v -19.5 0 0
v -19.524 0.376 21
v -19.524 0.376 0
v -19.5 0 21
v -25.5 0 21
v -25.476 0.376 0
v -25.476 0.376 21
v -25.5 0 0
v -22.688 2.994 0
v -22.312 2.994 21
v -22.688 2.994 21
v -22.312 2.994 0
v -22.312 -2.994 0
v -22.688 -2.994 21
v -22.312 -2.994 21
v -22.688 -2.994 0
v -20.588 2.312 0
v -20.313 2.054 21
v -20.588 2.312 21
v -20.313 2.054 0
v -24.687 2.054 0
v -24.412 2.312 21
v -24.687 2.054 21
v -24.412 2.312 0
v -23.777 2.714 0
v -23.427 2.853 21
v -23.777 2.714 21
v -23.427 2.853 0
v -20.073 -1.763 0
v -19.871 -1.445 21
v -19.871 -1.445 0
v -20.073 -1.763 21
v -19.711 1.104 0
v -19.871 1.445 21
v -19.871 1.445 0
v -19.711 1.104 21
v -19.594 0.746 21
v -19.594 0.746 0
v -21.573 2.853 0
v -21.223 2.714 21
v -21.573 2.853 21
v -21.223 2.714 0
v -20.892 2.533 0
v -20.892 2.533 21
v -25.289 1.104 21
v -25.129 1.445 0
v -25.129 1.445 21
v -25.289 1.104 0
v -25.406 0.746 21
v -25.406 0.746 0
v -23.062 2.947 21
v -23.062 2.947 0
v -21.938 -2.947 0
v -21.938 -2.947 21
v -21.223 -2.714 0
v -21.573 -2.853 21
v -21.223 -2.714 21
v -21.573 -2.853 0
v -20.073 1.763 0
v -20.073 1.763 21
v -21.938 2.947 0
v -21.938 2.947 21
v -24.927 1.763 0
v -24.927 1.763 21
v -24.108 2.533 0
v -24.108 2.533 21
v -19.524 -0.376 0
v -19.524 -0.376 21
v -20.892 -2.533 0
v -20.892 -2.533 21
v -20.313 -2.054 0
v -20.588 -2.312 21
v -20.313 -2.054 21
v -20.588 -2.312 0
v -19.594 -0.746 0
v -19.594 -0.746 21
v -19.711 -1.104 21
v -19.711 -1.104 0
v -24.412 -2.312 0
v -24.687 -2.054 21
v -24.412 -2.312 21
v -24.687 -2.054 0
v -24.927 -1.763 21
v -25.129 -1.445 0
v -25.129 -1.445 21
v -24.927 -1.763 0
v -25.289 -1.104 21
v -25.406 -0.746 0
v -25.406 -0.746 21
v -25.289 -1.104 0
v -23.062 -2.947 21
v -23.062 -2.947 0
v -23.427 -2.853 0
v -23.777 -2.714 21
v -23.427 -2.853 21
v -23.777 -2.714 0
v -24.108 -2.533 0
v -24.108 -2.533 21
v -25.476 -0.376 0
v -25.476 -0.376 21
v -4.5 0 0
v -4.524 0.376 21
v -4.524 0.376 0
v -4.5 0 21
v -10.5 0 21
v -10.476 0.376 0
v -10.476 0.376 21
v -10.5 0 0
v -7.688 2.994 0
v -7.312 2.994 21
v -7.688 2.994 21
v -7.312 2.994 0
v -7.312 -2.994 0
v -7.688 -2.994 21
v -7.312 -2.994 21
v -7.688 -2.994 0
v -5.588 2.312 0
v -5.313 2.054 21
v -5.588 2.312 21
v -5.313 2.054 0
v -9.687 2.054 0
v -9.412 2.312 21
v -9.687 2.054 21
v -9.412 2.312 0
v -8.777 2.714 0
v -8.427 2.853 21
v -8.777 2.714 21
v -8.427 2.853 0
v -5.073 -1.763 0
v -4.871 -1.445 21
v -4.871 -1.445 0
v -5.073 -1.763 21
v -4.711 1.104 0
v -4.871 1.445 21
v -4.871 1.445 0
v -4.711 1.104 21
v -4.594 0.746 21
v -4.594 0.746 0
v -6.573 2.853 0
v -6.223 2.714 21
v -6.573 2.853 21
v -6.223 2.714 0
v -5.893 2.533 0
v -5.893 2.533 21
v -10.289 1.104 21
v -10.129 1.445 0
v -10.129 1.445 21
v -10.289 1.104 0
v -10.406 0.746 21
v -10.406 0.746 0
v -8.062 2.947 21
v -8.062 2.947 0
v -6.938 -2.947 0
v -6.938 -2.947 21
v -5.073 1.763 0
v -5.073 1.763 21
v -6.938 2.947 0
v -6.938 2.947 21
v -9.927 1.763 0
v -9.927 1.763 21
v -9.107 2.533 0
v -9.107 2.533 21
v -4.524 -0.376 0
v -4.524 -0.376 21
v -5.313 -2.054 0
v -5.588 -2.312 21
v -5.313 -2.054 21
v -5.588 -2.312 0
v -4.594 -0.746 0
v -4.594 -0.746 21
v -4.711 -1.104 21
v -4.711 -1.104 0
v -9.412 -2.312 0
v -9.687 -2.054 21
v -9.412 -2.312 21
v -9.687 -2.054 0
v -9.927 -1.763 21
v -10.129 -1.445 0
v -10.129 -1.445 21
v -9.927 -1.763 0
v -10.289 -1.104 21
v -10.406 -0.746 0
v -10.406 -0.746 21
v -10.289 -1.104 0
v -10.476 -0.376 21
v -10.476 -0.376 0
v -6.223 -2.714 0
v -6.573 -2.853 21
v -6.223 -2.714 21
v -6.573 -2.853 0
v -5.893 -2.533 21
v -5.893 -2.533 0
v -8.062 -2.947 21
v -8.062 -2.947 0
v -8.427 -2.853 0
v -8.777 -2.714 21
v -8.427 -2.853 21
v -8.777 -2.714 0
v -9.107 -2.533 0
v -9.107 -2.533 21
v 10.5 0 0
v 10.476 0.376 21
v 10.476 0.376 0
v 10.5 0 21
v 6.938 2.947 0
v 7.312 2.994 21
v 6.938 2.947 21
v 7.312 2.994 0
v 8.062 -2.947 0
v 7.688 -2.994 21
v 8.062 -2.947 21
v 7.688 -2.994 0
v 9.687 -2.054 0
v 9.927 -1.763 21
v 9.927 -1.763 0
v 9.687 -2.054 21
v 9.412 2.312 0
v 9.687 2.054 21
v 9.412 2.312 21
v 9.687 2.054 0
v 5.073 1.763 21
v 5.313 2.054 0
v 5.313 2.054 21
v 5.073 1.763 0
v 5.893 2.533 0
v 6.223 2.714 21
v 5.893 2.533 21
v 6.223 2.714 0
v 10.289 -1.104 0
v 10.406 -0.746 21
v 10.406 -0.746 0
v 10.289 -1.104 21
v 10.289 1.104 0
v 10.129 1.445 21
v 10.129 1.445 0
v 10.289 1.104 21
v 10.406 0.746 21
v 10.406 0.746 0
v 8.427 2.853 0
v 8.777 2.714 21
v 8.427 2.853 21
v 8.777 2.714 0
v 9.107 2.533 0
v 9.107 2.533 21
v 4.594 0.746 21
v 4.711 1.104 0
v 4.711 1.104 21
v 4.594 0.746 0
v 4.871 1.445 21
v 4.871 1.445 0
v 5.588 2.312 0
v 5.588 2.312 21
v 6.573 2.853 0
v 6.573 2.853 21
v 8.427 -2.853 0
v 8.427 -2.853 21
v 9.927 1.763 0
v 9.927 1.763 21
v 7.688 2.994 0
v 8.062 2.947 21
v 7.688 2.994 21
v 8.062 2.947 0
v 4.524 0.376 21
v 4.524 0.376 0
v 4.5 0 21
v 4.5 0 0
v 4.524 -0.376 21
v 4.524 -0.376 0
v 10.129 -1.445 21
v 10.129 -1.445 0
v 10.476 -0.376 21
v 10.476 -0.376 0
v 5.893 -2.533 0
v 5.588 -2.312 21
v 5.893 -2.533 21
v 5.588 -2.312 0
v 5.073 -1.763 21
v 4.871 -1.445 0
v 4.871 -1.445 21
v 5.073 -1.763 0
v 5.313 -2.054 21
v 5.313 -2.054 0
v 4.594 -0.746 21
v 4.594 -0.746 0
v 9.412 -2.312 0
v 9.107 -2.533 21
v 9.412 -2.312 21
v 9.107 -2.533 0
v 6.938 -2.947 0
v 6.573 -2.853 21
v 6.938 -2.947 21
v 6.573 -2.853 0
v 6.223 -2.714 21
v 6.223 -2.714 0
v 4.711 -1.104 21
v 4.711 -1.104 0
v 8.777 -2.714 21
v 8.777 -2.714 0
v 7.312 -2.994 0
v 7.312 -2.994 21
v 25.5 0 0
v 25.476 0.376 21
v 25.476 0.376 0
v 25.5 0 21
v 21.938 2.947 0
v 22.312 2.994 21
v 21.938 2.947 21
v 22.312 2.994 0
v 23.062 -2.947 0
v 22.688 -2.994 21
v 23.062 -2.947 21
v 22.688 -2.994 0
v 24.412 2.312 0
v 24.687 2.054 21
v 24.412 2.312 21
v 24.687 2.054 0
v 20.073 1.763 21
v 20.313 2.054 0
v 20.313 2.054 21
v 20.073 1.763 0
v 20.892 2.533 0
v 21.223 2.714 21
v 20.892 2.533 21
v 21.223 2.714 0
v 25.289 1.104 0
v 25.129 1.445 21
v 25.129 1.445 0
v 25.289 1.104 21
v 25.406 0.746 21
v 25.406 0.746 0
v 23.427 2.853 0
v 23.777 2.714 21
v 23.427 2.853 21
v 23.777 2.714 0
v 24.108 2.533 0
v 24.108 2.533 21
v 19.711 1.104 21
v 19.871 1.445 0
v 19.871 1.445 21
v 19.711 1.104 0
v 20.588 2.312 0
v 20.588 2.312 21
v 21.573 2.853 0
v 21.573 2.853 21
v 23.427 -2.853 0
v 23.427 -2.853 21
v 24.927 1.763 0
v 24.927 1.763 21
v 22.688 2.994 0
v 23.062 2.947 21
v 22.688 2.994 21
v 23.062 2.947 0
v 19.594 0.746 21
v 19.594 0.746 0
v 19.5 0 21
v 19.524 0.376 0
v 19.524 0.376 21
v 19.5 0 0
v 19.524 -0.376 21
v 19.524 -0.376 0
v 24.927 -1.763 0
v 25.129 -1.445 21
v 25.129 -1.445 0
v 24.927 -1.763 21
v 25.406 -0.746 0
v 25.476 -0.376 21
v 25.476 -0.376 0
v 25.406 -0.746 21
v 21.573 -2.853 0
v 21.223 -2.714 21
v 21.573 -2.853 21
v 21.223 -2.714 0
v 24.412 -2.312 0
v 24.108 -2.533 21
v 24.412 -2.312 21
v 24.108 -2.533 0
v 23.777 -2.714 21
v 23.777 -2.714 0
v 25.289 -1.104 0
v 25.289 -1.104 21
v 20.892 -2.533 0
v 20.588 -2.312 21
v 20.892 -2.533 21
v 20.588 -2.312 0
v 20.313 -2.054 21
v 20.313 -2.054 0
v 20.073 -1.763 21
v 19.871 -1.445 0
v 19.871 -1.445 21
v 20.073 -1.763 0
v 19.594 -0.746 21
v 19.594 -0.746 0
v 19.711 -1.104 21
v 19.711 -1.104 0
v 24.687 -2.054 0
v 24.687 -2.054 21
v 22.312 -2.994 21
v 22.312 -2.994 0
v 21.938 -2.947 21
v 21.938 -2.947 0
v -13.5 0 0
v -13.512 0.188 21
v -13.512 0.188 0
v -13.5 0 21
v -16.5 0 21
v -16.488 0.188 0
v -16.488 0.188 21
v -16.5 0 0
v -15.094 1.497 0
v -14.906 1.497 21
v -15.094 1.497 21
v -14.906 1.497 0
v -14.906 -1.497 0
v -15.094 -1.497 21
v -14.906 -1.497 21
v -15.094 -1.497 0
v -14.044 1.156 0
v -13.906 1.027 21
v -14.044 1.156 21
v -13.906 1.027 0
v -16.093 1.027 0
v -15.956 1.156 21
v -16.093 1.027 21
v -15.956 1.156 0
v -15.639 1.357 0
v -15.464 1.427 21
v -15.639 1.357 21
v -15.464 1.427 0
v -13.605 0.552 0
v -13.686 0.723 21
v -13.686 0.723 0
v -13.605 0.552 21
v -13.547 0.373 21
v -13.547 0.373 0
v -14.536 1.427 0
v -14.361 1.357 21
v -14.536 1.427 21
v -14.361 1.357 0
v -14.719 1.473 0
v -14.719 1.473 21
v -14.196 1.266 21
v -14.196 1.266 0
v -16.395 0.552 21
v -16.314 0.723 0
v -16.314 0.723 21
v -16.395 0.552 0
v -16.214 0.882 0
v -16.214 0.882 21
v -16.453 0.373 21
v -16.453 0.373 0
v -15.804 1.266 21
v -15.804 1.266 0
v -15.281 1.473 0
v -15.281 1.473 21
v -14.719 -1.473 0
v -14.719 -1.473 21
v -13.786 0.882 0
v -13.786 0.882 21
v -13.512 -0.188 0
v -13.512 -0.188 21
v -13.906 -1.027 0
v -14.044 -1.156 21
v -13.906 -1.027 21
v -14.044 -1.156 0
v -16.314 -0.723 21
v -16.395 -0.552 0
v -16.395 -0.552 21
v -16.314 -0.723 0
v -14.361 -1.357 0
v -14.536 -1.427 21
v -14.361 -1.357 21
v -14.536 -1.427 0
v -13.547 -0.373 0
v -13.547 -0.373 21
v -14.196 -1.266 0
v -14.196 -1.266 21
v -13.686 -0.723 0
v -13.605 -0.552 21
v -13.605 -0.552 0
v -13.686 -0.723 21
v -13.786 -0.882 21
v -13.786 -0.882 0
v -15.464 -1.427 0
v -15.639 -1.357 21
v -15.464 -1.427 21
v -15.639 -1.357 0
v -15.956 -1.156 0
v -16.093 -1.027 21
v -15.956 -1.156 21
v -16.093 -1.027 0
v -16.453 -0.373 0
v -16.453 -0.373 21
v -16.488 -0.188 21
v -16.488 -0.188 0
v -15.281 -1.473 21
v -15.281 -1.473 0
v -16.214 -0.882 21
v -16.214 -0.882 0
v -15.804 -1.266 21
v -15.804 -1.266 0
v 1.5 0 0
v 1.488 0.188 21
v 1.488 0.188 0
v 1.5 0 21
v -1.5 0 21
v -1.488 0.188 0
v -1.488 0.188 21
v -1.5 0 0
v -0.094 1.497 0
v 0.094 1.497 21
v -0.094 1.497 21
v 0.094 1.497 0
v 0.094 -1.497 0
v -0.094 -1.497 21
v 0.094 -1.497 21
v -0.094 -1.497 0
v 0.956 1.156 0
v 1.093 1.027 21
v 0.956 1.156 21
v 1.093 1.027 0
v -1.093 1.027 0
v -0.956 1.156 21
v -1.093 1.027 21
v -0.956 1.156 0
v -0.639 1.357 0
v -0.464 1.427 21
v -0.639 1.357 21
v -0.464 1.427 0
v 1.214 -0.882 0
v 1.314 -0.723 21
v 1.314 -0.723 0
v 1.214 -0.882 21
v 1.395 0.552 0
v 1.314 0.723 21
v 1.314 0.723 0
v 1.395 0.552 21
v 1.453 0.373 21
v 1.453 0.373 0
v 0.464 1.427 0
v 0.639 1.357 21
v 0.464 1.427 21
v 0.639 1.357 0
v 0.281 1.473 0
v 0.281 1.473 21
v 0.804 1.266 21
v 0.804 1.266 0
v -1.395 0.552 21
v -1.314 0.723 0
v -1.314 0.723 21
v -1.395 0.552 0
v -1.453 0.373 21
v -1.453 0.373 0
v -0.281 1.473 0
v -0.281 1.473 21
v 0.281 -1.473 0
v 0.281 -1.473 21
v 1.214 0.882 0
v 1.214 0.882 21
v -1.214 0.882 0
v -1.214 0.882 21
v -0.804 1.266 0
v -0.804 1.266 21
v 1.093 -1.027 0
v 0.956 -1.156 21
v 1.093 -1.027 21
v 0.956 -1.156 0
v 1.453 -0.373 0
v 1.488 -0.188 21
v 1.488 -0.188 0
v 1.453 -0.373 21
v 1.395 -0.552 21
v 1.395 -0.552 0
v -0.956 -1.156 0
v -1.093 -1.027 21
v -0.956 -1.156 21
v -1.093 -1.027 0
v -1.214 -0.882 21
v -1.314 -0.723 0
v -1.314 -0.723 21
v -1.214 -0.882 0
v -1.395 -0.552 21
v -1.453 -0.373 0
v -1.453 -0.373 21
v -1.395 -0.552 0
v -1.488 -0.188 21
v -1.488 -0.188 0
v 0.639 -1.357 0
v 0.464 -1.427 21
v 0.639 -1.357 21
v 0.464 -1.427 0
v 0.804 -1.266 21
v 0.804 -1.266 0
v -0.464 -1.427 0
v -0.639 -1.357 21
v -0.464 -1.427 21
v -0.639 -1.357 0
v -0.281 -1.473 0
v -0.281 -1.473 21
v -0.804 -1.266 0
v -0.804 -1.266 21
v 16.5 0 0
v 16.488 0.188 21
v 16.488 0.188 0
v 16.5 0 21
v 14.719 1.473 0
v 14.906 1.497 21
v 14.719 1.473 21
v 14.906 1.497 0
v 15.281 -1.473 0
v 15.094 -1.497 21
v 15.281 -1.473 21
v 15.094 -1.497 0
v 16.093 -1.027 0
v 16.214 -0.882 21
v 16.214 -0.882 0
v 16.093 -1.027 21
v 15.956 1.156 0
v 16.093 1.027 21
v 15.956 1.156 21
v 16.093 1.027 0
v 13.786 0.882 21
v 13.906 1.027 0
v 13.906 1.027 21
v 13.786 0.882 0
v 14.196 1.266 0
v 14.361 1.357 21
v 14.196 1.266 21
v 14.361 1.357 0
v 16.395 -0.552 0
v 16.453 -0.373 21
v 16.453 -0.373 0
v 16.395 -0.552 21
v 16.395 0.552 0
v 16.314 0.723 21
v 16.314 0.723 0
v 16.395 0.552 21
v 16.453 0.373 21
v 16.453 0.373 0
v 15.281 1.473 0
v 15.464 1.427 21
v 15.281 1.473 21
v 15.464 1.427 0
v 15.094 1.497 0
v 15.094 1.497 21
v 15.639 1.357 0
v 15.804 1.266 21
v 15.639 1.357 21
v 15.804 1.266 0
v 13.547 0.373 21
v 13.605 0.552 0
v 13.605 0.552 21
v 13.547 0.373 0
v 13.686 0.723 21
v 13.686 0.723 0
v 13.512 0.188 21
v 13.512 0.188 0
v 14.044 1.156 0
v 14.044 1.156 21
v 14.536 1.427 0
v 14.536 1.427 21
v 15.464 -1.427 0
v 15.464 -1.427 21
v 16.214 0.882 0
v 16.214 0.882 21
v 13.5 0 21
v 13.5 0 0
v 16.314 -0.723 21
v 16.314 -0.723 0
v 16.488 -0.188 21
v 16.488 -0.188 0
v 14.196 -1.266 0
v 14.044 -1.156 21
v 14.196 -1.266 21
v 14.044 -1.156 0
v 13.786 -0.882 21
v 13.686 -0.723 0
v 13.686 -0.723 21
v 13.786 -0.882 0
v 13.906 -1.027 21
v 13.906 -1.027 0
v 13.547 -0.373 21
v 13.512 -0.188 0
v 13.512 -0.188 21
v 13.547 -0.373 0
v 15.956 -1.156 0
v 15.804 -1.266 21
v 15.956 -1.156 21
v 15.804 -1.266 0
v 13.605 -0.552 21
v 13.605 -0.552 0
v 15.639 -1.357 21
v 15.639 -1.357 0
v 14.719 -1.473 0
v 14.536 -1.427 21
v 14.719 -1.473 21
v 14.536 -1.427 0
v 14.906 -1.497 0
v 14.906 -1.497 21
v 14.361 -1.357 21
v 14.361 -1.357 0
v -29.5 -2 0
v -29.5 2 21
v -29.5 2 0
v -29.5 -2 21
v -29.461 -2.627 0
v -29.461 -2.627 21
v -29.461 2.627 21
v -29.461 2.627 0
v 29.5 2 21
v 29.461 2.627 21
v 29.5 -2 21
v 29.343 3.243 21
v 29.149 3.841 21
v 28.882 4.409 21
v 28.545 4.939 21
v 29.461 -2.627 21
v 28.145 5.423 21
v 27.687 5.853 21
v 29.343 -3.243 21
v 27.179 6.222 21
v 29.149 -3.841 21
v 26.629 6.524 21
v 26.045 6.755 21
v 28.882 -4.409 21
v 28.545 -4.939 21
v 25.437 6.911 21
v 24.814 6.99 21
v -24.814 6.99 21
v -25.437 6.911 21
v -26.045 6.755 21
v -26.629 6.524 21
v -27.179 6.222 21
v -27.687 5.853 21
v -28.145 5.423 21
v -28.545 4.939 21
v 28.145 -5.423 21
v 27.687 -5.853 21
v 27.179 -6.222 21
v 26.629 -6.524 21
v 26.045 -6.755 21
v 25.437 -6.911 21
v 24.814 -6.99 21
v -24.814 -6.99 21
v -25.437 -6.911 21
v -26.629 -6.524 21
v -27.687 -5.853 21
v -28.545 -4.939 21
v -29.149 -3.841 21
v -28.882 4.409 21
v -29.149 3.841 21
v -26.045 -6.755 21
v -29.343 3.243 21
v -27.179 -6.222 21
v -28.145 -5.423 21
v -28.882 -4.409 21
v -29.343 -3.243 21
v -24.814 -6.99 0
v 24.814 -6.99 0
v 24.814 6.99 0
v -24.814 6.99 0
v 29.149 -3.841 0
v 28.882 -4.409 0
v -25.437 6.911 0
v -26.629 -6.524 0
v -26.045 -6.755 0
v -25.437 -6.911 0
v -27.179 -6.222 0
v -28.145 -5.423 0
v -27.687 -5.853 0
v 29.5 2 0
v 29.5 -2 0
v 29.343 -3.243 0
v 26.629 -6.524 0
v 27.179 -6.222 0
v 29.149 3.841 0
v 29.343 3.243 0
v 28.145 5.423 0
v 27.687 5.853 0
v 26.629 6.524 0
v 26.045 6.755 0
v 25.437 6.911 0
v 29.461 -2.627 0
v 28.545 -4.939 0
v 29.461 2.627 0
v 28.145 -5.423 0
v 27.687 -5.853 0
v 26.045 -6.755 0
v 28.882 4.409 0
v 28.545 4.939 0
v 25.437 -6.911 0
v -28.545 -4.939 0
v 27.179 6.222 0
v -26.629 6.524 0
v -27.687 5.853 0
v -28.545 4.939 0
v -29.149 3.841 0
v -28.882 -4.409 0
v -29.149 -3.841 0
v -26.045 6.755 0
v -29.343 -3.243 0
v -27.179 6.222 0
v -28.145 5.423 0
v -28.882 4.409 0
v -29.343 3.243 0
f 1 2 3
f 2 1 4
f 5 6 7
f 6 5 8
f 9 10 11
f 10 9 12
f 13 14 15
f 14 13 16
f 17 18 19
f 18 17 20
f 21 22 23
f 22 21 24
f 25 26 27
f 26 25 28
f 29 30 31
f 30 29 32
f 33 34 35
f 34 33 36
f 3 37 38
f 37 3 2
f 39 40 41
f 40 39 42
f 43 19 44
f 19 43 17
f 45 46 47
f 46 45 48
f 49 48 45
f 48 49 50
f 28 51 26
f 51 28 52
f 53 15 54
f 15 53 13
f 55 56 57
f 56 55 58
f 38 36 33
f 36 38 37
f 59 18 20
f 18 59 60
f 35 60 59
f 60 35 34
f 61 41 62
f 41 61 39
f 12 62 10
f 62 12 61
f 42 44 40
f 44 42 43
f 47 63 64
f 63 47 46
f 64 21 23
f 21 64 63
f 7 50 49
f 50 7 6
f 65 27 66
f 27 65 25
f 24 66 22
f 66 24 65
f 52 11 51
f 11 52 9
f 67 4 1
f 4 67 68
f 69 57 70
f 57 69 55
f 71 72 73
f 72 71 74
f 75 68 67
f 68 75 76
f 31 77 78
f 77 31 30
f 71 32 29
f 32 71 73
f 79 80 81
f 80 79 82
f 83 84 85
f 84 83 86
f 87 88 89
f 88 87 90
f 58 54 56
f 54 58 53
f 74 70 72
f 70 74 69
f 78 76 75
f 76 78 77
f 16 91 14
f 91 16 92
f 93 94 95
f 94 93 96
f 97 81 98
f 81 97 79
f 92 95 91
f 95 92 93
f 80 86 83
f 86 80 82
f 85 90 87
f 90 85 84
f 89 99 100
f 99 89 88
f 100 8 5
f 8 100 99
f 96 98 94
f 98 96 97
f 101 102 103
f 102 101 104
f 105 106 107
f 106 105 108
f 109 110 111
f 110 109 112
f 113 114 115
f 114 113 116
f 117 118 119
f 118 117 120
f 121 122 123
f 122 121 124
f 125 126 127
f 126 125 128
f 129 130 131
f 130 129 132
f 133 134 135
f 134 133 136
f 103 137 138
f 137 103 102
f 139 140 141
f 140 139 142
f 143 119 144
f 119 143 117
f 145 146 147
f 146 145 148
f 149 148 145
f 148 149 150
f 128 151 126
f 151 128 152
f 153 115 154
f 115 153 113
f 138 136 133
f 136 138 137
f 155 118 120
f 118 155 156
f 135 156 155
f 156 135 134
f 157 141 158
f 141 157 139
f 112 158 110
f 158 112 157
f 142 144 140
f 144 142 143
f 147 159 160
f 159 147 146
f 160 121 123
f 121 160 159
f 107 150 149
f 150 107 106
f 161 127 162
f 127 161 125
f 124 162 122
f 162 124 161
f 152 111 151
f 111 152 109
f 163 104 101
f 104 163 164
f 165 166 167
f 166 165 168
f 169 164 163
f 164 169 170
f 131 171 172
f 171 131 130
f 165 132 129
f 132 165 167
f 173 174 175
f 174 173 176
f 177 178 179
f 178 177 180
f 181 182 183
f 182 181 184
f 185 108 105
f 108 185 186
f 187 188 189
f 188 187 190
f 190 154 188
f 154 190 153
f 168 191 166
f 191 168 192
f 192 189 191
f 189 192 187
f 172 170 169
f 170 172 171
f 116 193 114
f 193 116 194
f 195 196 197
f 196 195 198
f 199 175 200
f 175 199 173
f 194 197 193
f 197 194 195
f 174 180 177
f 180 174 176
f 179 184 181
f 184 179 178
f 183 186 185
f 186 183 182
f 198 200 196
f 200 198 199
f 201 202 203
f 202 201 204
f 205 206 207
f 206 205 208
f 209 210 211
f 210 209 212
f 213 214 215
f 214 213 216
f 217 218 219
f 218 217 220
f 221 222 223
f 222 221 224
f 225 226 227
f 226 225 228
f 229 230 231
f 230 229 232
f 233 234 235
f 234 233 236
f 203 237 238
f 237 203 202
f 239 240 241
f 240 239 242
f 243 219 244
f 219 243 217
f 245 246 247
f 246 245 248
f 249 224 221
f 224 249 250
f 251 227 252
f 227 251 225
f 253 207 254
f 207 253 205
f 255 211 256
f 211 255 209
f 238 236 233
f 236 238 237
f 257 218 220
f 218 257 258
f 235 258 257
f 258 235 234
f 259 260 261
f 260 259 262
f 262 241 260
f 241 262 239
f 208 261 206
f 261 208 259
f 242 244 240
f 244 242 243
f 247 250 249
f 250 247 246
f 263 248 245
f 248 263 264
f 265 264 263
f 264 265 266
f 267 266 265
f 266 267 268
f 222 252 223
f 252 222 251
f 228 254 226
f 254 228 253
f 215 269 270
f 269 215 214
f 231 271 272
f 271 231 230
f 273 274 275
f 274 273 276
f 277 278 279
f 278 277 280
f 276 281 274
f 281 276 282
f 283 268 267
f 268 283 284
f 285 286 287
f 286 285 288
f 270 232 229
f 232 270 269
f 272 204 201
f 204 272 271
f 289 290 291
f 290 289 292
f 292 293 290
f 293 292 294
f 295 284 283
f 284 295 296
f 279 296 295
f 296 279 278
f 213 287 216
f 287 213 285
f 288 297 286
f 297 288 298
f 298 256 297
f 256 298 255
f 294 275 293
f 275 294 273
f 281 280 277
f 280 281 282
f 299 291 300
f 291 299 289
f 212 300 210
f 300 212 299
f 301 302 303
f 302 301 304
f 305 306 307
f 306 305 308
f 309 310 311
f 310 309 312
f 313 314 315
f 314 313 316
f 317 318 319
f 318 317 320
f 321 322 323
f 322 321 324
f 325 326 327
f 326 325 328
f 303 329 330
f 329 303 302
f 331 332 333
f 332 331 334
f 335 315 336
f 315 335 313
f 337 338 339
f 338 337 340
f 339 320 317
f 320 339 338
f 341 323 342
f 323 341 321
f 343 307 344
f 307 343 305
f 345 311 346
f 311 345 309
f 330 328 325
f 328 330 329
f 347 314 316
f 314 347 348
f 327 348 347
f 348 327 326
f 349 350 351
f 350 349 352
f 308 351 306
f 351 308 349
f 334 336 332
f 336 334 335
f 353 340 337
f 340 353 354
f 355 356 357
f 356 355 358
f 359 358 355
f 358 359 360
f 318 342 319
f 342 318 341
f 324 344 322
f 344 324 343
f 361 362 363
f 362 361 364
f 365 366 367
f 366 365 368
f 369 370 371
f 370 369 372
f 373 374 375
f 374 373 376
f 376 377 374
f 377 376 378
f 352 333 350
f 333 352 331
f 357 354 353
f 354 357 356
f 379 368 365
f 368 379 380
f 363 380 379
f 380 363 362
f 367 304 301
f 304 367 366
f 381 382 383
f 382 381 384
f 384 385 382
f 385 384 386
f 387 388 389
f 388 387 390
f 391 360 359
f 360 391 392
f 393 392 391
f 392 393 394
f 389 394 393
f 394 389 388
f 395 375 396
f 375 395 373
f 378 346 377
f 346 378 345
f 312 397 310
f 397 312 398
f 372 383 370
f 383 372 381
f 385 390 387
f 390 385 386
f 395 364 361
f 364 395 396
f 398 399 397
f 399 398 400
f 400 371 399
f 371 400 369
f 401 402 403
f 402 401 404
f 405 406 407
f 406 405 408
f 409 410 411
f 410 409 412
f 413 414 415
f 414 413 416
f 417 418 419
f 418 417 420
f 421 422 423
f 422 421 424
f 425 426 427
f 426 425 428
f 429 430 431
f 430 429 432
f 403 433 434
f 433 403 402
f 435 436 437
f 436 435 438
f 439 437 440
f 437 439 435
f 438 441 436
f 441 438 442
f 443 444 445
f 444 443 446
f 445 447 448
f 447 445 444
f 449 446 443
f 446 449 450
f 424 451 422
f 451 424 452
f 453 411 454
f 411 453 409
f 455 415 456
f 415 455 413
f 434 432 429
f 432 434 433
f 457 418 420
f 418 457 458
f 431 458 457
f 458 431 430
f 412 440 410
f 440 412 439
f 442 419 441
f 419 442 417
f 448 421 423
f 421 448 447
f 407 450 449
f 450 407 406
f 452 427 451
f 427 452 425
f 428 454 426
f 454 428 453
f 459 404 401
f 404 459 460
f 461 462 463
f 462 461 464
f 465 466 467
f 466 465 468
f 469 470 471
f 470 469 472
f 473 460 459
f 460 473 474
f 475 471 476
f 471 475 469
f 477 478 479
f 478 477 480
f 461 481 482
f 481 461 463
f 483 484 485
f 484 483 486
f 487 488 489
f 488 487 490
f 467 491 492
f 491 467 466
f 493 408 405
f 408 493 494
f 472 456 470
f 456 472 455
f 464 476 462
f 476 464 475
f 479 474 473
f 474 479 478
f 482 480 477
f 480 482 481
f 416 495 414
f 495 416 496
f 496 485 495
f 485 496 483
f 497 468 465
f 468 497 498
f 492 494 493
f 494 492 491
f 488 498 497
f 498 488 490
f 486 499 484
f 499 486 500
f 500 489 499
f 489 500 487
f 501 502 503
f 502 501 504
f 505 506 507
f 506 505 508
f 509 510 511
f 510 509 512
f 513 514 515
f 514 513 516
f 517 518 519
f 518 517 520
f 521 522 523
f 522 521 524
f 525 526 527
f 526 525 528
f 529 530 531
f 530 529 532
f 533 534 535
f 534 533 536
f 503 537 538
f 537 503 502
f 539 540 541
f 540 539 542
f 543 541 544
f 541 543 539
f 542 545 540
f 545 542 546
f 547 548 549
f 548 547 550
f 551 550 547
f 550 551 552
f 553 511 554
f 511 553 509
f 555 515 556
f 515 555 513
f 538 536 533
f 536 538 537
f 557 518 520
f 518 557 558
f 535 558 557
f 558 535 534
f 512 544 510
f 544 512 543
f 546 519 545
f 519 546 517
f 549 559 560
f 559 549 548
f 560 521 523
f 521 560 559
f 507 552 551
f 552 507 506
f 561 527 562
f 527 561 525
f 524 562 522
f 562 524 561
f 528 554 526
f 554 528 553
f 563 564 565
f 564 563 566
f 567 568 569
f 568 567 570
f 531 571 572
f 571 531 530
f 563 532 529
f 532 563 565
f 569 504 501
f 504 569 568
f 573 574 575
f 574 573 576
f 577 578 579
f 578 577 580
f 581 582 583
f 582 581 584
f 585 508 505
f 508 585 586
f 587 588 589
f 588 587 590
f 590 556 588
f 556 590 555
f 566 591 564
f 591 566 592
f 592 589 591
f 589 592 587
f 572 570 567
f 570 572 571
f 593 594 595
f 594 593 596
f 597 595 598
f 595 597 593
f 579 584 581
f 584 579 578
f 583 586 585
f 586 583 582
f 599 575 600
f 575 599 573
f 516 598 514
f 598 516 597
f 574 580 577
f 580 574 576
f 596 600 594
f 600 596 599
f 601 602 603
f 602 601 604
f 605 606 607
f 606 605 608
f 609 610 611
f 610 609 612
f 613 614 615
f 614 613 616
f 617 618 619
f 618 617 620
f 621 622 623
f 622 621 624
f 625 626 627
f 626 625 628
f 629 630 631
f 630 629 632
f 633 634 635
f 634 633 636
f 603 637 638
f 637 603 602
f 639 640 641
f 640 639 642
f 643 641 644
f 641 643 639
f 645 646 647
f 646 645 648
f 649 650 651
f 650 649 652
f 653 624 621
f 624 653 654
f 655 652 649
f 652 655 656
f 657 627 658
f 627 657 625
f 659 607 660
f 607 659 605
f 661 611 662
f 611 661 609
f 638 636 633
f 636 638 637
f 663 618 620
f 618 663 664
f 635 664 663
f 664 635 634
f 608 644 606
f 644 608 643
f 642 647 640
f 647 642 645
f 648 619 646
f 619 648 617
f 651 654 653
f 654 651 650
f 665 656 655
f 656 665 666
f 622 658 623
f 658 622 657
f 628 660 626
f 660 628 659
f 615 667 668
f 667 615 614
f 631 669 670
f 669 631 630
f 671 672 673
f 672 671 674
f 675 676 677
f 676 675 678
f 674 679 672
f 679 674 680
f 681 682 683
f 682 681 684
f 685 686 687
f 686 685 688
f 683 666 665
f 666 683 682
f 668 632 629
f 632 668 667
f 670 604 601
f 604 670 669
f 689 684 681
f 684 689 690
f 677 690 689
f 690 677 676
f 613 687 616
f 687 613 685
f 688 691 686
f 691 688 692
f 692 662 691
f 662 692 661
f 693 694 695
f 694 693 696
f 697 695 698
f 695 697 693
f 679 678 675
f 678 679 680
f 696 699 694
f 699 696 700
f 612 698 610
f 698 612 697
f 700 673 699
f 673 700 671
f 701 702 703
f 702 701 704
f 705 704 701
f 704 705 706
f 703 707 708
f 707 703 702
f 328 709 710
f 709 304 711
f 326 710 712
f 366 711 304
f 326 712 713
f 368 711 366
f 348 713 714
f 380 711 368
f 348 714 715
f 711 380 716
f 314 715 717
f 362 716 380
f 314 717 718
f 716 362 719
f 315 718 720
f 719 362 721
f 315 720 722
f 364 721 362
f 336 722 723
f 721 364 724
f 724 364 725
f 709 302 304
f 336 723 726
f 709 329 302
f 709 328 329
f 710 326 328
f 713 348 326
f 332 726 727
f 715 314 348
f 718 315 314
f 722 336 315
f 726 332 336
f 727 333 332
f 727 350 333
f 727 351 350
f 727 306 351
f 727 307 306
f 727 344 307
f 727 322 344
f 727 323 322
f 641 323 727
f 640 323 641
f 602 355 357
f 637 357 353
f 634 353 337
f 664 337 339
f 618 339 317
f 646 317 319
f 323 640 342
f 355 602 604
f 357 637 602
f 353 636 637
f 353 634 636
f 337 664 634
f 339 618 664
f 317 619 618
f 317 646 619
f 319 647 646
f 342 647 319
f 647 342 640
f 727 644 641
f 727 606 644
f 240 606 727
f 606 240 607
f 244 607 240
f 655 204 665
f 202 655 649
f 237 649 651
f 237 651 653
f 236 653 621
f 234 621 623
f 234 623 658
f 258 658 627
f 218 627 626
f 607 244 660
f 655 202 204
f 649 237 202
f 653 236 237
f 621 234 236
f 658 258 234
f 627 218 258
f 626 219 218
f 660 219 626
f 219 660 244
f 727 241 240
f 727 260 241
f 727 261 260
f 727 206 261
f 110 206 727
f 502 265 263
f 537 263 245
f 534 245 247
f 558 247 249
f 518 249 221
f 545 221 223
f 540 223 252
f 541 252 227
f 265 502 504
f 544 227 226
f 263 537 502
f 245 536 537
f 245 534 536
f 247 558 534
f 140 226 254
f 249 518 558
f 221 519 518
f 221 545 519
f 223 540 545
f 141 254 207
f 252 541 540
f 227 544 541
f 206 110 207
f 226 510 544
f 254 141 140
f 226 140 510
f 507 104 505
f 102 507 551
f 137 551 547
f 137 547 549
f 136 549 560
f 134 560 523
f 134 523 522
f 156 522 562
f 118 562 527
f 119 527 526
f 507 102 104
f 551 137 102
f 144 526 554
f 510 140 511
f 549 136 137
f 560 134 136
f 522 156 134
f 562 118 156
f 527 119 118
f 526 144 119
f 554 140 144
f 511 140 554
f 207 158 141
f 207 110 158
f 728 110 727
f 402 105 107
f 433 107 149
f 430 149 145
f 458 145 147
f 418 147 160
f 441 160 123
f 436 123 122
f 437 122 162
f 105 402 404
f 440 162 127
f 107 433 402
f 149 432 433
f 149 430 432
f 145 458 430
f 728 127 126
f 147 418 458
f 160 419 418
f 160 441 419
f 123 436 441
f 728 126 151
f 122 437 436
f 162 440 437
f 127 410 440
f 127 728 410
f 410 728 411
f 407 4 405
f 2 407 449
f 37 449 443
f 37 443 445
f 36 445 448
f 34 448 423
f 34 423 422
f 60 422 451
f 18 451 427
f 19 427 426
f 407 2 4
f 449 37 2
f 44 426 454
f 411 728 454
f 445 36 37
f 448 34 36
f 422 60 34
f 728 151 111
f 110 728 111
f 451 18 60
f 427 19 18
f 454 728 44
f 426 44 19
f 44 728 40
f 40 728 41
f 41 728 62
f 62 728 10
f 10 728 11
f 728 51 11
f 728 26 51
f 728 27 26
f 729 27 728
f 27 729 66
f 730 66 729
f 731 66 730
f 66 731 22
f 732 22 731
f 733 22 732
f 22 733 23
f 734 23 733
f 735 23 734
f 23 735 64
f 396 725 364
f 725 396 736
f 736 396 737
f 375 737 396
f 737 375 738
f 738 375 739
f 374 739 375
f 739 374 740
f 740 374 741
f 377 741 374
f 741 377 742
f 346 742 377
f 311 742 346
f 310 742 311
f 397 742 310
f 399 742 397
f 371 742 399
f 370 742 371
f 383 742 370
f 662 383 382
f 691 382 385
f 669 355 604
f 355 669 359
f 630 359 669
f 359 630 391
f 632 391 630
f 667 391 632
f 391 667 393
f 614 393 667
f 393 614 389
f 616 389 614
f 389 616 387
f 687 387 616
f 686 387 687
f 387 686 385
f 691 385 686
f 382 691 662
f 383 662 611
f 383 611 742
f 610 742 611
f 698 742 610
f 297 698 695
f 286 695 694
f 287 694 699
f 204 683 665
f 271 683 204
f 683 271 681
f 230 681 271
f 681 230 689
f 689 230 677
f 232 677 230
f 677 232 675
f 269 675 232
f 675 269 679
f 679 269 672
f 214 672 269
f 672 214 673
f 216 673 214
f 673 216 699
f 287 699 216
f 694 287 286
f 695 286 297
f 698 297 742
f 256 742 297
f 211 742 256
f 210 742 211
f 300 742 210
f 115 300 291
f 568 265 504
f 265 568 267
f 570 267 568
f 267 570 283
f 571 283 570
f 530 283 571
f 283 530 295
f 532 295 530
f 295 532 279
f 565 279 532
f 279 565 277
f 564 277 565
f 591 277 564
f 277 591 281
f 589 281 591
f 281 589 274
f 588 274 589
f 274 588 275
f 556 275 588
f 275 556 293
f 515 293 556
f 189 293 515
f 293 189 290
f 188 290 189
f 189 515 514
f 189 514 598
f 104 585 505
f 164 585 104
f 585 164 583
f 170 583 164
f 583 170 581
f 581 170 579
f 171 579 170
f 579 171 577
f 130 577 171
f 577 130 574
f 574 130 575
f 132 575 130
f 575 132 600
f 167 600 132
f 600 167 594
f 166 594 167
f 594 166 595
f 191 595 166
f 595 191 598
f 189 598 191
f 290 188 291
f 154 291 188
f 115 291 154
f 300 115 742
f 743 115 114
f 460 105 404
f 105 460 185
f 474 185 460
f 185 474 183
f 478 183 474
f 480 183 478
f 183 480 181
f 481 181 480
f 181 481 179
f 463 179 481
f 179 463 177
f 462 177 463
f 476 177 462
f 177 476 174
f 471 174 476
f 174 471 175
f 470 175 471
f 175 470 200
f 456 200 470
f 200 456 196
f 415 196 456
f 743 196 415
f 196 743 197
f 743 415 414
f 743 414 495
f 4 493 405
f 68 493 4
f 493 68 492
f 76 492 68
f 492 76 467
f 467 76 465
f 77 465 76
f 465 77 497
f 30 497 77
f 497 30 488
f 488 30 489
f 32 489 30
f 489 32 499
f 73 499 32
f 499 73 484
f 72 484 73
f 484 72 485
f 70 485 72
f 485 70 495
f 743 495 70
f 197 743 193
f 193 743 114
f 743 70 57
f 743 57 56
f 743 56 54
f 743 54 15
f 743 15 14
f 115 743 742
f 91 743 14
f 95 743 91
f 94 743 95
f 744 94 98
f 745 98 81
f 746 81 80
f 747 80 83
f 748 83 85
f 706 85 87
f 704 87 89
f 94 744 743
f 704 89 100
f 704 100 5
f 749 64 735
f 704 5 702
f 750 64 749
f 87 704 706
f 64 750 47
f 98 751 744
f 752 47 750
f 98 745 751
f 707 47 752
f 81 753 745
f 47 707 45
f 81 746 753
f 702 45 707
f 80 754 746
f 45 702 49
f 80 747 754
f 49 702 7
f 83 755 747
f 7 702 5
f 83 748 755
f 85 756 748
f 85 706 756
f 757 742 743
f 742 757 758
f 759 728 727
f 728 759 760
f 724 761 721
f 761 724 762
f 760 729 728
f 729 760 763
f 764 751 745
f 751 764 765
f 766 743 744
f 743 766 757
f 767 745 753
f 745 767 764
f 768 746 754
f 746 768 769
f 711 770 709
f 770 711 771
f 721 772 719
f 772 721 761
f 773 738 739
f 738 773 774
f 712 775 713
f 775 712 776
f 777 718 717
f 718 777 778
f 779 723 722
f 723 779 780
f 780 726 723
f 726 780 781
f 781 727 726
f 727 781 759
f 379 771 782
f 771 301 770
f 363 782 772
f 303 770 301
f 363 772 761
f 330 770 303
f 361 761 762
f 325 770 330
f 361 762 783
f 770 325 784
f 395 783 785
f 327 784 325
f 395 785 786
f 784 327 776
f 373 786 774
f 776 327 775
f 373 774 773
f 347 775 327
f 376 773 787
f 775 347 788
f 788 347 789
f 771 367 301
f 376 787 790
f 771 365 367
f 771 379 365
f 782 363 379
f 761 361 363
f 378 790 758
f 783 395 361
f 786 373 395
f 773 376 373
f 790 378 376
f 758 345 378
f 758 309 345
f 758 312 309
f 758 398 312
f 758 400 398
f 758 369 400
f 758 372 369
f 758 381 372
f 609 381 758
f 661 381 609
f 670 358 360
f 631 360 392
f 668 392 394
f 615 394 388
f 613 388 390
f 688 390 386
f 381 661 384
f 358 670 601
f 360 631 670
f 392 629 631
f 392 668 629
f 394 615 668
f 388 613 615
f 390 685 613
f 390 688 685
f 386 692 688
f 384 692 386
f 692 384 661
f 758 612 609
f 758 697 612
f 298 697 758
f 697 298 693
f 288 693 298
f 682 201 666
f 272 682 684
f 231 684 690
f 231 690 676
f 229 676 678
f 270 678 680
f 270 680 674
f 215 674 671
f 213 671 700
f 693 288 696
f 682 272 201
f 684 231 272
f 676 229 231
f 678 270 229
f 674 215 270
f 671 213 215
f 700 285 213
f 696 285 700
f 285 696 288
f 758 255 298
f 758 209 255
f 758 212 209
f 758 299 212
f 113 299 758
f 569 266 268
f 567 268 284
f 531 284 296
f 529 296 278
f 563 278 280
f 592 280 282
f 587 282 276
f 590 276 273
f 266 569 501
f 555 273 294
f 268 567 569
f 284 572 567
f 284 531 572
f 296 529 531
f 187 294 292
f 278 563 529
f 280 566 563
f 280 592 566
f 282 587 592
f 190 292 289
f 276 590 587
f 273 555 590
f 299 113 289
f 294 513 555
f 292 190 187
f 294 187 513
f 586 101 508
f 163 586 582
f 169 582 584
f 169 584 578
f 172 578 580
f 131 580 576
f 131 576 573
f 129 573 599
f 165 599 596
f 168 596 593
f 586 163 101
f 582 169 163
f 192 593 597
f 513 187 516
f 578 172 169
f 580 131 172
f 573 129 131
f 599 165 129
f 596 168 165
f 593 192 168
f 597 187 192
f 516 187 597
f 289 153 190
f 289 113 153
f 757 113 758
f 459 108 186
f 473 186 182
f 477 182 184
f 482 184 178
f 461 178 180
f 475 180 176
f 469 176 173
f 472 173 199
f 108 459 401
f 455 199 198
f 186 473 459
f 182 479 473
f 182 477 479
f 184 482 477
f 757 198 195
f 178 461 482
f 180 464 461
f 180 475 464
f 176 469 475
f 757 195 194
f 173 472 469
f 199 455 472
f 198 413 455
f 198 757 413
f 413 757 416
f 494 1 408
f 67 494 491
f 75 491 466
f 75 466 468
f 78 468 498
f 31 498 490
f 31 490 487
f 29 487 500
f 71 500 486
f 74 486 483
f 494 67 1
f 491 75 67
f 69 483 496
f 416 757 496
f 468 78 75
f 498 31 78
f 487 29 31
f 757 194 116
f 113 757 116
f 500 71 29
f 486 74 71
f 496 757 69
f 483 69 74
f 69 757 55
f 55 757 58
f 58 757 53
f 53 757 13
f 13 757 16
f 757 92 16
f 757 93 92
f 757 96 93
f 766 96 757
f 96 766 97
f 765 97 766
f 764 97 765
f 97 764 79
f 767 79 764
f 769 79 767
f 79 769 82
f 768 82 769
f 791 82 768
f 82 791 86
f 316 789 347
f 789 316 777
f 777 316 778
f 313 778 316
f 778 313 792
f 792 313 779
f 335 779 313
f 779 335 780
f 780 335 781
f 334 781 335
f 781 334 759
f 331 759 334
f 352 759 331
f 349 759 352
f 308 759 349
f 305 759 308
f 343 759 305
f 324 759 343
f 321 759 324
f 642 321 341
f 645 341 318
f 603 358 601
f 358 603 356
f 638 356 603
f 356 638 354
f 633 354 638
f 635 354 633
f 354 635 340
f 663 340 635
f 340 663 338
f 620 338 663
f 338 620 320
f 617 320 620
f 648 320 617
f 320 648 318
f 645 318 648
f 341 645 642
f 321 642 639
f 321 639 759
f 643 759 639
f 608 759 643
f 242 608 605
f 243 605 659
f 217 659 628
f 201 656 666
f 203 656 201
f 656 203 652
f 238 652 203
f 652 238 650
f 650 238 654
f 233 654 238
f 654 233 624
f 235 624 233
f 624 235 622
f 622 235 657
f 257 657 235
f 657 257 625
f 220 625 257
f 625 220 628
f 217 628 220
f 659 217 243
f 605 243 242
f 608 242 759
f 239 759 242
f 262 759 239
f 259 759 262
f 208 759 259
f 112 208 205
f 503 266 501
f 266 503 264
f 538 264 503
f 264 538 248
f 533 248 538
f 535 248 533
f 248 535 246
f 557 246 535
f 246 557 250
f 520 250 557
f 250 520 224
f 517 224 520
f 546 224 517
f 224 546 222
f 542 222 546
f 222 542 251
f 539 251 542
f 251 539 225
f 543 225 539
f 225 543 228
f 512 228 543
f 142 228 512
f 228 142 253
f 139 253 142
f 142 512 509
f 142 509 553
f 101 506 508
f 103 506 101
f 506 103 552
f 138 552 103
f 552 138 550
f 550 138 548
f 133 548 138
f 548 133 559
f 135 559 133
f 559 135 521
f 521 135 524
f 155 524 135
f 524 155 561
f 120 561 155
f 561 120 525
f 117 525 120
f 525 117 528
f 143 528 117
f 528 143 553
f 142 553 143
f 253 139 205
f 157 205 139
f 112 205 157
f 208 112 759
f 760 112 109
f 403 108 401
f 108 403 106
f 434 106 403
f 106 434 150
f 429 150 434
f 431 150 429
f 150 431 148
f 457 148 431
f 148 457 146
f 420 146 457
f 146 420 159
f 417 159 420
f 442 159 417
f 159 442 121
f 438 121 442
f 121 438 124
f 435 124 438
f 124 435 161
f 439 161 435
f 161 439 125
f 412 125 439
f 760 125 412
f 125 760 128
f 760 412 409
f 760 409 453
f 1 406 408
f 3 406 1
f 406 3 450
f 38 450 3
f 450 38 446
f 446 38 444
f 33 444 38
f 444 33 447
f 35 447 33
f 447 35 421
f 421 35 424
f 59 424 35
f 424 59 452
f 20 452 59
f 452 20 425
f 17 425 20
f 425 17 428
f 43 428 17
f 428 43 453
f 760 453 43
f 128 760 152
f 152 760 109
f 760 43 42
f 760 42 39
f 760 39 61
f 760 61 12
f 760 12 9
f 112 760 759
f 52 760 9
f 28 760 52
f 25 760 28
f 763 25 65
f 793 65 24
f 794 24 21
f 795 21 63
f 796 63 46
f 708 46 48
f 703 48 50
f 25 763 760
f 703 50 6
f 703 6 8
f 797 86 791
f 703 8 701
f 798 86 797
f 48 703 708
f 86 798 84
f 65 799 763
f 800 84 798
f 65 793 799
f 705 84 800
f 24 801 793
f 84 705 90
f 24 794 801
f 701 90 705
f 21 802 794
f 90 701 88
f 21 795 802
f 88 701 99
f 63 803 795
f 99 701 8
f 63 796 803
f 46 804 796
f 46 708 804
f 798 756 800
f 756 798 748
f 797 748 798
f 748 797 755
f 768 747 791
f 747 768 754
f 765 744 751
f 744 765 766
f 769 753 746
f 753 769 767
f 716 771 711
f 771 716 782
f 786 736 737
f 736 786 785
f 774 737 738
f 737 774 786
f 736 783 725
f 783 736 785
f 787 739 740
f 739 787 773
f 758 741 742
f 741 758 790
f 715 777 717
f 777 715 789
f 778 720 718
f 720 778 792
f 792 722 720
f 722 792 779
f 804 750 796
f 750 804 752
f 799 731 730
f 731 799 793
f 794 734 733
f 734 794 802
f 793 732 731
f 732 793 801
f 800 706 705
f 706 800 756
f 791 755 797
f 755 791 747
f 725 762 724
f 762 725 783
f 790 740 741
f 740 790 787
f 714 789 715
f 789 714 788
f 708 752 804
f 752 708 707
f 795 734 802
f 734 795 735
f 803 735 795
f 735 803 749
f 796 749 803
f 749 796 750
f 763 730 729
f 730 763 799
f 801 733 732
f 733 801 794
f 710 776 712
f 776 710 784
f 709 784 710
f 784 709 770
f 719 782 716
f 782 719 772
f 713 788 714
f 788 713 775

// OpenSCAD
$fn = 50;


difference() {
	union() {
		hull() {
			translate(v = [-24.5000000000, 2.0000000000, 0]) {
				cylinder(h = 21, r = 5);
			}
			translate(v = [24.5000000000, 2.0000000000, 0]) {
				cylinder(h = 21, r = 5);
			}
			translate(v = [-24.5000000000, -2.0000000000, 0]) {
				cylinder(h = 21, r = 5);
			}
			translate(v = [24.5000000000, -2.0000000000, 0]) {
				cylinder(h = 21, r = 5);
			}
		}
	}
	union() {
		translate(v = [-22.5000000000, 0.0000000000, 0]) {
			translate(v = [0, 0, -100]) {
				cylinder(h = 200, r = 3.0000000000);
			}
		}
		translate(v = [-7.5000000000, 0.0000000000, 0]) {
			translate(v = [0, 0, -100]) {
				cylinder(h = 200, r = 3.0000000000);
			}
		}
		translate(v = [7.5000000000, 0.0000000000, 0]) {
			translate(v = [0, 0, -100]) {
				cylinder(h = 200, r = 3.0000000000);
			}
		}
		translate(v = [22.5000000000, 0.0000000000, 0]) {
			translate(v = [0, 0, -100]) {
				cylinder(h = 200, r = 3.0000000000);
			}
		}
		translate(v = [-22.5000000000, 0.0000000000, 0]) {
			translate(v = [0, 0, -100]) {
				cylinder(h = 200, r = 1.5000000000);
			}
		}
		translate(v = [-15.0000000000, 0.0000000000, 0]) {
			translate(v = [0, 0, -100]) {
				cylinder(h = 200, r = 1.5000000000);
			}
		}
		translate(v = [-7.5000000000, 0.0000000000, 0]) {
			translate(v = [0, 0, -100]) {
				cylinder(h = 200, r = 1.5000000000);
			}
		}
		translate(v = [0, 0, -100]) {
			cylinder(h = 200, r = 1.5000000000);
		}
		translate(v = [7.5000000000, 0.0000000000, 0]) {
			translate(v = [0, 0, -100]) {
				cylinder(h = 200, r = 1.5000000000);
			}
		}
		translate(v = [15.0000000000, 0.0000000000, 0]) {
			translate(v = [0, 0, -100]) {
				cylinder(h = 200, r = 1.5000000000);
			}
		}
		translate(v = [22.5000000000, 0.0000000000, 0]) {
			translate(v = [0, 0, -100]) {
				cylinder(h = 200, r = 1.5000000000);
			}
		}
	}
}
